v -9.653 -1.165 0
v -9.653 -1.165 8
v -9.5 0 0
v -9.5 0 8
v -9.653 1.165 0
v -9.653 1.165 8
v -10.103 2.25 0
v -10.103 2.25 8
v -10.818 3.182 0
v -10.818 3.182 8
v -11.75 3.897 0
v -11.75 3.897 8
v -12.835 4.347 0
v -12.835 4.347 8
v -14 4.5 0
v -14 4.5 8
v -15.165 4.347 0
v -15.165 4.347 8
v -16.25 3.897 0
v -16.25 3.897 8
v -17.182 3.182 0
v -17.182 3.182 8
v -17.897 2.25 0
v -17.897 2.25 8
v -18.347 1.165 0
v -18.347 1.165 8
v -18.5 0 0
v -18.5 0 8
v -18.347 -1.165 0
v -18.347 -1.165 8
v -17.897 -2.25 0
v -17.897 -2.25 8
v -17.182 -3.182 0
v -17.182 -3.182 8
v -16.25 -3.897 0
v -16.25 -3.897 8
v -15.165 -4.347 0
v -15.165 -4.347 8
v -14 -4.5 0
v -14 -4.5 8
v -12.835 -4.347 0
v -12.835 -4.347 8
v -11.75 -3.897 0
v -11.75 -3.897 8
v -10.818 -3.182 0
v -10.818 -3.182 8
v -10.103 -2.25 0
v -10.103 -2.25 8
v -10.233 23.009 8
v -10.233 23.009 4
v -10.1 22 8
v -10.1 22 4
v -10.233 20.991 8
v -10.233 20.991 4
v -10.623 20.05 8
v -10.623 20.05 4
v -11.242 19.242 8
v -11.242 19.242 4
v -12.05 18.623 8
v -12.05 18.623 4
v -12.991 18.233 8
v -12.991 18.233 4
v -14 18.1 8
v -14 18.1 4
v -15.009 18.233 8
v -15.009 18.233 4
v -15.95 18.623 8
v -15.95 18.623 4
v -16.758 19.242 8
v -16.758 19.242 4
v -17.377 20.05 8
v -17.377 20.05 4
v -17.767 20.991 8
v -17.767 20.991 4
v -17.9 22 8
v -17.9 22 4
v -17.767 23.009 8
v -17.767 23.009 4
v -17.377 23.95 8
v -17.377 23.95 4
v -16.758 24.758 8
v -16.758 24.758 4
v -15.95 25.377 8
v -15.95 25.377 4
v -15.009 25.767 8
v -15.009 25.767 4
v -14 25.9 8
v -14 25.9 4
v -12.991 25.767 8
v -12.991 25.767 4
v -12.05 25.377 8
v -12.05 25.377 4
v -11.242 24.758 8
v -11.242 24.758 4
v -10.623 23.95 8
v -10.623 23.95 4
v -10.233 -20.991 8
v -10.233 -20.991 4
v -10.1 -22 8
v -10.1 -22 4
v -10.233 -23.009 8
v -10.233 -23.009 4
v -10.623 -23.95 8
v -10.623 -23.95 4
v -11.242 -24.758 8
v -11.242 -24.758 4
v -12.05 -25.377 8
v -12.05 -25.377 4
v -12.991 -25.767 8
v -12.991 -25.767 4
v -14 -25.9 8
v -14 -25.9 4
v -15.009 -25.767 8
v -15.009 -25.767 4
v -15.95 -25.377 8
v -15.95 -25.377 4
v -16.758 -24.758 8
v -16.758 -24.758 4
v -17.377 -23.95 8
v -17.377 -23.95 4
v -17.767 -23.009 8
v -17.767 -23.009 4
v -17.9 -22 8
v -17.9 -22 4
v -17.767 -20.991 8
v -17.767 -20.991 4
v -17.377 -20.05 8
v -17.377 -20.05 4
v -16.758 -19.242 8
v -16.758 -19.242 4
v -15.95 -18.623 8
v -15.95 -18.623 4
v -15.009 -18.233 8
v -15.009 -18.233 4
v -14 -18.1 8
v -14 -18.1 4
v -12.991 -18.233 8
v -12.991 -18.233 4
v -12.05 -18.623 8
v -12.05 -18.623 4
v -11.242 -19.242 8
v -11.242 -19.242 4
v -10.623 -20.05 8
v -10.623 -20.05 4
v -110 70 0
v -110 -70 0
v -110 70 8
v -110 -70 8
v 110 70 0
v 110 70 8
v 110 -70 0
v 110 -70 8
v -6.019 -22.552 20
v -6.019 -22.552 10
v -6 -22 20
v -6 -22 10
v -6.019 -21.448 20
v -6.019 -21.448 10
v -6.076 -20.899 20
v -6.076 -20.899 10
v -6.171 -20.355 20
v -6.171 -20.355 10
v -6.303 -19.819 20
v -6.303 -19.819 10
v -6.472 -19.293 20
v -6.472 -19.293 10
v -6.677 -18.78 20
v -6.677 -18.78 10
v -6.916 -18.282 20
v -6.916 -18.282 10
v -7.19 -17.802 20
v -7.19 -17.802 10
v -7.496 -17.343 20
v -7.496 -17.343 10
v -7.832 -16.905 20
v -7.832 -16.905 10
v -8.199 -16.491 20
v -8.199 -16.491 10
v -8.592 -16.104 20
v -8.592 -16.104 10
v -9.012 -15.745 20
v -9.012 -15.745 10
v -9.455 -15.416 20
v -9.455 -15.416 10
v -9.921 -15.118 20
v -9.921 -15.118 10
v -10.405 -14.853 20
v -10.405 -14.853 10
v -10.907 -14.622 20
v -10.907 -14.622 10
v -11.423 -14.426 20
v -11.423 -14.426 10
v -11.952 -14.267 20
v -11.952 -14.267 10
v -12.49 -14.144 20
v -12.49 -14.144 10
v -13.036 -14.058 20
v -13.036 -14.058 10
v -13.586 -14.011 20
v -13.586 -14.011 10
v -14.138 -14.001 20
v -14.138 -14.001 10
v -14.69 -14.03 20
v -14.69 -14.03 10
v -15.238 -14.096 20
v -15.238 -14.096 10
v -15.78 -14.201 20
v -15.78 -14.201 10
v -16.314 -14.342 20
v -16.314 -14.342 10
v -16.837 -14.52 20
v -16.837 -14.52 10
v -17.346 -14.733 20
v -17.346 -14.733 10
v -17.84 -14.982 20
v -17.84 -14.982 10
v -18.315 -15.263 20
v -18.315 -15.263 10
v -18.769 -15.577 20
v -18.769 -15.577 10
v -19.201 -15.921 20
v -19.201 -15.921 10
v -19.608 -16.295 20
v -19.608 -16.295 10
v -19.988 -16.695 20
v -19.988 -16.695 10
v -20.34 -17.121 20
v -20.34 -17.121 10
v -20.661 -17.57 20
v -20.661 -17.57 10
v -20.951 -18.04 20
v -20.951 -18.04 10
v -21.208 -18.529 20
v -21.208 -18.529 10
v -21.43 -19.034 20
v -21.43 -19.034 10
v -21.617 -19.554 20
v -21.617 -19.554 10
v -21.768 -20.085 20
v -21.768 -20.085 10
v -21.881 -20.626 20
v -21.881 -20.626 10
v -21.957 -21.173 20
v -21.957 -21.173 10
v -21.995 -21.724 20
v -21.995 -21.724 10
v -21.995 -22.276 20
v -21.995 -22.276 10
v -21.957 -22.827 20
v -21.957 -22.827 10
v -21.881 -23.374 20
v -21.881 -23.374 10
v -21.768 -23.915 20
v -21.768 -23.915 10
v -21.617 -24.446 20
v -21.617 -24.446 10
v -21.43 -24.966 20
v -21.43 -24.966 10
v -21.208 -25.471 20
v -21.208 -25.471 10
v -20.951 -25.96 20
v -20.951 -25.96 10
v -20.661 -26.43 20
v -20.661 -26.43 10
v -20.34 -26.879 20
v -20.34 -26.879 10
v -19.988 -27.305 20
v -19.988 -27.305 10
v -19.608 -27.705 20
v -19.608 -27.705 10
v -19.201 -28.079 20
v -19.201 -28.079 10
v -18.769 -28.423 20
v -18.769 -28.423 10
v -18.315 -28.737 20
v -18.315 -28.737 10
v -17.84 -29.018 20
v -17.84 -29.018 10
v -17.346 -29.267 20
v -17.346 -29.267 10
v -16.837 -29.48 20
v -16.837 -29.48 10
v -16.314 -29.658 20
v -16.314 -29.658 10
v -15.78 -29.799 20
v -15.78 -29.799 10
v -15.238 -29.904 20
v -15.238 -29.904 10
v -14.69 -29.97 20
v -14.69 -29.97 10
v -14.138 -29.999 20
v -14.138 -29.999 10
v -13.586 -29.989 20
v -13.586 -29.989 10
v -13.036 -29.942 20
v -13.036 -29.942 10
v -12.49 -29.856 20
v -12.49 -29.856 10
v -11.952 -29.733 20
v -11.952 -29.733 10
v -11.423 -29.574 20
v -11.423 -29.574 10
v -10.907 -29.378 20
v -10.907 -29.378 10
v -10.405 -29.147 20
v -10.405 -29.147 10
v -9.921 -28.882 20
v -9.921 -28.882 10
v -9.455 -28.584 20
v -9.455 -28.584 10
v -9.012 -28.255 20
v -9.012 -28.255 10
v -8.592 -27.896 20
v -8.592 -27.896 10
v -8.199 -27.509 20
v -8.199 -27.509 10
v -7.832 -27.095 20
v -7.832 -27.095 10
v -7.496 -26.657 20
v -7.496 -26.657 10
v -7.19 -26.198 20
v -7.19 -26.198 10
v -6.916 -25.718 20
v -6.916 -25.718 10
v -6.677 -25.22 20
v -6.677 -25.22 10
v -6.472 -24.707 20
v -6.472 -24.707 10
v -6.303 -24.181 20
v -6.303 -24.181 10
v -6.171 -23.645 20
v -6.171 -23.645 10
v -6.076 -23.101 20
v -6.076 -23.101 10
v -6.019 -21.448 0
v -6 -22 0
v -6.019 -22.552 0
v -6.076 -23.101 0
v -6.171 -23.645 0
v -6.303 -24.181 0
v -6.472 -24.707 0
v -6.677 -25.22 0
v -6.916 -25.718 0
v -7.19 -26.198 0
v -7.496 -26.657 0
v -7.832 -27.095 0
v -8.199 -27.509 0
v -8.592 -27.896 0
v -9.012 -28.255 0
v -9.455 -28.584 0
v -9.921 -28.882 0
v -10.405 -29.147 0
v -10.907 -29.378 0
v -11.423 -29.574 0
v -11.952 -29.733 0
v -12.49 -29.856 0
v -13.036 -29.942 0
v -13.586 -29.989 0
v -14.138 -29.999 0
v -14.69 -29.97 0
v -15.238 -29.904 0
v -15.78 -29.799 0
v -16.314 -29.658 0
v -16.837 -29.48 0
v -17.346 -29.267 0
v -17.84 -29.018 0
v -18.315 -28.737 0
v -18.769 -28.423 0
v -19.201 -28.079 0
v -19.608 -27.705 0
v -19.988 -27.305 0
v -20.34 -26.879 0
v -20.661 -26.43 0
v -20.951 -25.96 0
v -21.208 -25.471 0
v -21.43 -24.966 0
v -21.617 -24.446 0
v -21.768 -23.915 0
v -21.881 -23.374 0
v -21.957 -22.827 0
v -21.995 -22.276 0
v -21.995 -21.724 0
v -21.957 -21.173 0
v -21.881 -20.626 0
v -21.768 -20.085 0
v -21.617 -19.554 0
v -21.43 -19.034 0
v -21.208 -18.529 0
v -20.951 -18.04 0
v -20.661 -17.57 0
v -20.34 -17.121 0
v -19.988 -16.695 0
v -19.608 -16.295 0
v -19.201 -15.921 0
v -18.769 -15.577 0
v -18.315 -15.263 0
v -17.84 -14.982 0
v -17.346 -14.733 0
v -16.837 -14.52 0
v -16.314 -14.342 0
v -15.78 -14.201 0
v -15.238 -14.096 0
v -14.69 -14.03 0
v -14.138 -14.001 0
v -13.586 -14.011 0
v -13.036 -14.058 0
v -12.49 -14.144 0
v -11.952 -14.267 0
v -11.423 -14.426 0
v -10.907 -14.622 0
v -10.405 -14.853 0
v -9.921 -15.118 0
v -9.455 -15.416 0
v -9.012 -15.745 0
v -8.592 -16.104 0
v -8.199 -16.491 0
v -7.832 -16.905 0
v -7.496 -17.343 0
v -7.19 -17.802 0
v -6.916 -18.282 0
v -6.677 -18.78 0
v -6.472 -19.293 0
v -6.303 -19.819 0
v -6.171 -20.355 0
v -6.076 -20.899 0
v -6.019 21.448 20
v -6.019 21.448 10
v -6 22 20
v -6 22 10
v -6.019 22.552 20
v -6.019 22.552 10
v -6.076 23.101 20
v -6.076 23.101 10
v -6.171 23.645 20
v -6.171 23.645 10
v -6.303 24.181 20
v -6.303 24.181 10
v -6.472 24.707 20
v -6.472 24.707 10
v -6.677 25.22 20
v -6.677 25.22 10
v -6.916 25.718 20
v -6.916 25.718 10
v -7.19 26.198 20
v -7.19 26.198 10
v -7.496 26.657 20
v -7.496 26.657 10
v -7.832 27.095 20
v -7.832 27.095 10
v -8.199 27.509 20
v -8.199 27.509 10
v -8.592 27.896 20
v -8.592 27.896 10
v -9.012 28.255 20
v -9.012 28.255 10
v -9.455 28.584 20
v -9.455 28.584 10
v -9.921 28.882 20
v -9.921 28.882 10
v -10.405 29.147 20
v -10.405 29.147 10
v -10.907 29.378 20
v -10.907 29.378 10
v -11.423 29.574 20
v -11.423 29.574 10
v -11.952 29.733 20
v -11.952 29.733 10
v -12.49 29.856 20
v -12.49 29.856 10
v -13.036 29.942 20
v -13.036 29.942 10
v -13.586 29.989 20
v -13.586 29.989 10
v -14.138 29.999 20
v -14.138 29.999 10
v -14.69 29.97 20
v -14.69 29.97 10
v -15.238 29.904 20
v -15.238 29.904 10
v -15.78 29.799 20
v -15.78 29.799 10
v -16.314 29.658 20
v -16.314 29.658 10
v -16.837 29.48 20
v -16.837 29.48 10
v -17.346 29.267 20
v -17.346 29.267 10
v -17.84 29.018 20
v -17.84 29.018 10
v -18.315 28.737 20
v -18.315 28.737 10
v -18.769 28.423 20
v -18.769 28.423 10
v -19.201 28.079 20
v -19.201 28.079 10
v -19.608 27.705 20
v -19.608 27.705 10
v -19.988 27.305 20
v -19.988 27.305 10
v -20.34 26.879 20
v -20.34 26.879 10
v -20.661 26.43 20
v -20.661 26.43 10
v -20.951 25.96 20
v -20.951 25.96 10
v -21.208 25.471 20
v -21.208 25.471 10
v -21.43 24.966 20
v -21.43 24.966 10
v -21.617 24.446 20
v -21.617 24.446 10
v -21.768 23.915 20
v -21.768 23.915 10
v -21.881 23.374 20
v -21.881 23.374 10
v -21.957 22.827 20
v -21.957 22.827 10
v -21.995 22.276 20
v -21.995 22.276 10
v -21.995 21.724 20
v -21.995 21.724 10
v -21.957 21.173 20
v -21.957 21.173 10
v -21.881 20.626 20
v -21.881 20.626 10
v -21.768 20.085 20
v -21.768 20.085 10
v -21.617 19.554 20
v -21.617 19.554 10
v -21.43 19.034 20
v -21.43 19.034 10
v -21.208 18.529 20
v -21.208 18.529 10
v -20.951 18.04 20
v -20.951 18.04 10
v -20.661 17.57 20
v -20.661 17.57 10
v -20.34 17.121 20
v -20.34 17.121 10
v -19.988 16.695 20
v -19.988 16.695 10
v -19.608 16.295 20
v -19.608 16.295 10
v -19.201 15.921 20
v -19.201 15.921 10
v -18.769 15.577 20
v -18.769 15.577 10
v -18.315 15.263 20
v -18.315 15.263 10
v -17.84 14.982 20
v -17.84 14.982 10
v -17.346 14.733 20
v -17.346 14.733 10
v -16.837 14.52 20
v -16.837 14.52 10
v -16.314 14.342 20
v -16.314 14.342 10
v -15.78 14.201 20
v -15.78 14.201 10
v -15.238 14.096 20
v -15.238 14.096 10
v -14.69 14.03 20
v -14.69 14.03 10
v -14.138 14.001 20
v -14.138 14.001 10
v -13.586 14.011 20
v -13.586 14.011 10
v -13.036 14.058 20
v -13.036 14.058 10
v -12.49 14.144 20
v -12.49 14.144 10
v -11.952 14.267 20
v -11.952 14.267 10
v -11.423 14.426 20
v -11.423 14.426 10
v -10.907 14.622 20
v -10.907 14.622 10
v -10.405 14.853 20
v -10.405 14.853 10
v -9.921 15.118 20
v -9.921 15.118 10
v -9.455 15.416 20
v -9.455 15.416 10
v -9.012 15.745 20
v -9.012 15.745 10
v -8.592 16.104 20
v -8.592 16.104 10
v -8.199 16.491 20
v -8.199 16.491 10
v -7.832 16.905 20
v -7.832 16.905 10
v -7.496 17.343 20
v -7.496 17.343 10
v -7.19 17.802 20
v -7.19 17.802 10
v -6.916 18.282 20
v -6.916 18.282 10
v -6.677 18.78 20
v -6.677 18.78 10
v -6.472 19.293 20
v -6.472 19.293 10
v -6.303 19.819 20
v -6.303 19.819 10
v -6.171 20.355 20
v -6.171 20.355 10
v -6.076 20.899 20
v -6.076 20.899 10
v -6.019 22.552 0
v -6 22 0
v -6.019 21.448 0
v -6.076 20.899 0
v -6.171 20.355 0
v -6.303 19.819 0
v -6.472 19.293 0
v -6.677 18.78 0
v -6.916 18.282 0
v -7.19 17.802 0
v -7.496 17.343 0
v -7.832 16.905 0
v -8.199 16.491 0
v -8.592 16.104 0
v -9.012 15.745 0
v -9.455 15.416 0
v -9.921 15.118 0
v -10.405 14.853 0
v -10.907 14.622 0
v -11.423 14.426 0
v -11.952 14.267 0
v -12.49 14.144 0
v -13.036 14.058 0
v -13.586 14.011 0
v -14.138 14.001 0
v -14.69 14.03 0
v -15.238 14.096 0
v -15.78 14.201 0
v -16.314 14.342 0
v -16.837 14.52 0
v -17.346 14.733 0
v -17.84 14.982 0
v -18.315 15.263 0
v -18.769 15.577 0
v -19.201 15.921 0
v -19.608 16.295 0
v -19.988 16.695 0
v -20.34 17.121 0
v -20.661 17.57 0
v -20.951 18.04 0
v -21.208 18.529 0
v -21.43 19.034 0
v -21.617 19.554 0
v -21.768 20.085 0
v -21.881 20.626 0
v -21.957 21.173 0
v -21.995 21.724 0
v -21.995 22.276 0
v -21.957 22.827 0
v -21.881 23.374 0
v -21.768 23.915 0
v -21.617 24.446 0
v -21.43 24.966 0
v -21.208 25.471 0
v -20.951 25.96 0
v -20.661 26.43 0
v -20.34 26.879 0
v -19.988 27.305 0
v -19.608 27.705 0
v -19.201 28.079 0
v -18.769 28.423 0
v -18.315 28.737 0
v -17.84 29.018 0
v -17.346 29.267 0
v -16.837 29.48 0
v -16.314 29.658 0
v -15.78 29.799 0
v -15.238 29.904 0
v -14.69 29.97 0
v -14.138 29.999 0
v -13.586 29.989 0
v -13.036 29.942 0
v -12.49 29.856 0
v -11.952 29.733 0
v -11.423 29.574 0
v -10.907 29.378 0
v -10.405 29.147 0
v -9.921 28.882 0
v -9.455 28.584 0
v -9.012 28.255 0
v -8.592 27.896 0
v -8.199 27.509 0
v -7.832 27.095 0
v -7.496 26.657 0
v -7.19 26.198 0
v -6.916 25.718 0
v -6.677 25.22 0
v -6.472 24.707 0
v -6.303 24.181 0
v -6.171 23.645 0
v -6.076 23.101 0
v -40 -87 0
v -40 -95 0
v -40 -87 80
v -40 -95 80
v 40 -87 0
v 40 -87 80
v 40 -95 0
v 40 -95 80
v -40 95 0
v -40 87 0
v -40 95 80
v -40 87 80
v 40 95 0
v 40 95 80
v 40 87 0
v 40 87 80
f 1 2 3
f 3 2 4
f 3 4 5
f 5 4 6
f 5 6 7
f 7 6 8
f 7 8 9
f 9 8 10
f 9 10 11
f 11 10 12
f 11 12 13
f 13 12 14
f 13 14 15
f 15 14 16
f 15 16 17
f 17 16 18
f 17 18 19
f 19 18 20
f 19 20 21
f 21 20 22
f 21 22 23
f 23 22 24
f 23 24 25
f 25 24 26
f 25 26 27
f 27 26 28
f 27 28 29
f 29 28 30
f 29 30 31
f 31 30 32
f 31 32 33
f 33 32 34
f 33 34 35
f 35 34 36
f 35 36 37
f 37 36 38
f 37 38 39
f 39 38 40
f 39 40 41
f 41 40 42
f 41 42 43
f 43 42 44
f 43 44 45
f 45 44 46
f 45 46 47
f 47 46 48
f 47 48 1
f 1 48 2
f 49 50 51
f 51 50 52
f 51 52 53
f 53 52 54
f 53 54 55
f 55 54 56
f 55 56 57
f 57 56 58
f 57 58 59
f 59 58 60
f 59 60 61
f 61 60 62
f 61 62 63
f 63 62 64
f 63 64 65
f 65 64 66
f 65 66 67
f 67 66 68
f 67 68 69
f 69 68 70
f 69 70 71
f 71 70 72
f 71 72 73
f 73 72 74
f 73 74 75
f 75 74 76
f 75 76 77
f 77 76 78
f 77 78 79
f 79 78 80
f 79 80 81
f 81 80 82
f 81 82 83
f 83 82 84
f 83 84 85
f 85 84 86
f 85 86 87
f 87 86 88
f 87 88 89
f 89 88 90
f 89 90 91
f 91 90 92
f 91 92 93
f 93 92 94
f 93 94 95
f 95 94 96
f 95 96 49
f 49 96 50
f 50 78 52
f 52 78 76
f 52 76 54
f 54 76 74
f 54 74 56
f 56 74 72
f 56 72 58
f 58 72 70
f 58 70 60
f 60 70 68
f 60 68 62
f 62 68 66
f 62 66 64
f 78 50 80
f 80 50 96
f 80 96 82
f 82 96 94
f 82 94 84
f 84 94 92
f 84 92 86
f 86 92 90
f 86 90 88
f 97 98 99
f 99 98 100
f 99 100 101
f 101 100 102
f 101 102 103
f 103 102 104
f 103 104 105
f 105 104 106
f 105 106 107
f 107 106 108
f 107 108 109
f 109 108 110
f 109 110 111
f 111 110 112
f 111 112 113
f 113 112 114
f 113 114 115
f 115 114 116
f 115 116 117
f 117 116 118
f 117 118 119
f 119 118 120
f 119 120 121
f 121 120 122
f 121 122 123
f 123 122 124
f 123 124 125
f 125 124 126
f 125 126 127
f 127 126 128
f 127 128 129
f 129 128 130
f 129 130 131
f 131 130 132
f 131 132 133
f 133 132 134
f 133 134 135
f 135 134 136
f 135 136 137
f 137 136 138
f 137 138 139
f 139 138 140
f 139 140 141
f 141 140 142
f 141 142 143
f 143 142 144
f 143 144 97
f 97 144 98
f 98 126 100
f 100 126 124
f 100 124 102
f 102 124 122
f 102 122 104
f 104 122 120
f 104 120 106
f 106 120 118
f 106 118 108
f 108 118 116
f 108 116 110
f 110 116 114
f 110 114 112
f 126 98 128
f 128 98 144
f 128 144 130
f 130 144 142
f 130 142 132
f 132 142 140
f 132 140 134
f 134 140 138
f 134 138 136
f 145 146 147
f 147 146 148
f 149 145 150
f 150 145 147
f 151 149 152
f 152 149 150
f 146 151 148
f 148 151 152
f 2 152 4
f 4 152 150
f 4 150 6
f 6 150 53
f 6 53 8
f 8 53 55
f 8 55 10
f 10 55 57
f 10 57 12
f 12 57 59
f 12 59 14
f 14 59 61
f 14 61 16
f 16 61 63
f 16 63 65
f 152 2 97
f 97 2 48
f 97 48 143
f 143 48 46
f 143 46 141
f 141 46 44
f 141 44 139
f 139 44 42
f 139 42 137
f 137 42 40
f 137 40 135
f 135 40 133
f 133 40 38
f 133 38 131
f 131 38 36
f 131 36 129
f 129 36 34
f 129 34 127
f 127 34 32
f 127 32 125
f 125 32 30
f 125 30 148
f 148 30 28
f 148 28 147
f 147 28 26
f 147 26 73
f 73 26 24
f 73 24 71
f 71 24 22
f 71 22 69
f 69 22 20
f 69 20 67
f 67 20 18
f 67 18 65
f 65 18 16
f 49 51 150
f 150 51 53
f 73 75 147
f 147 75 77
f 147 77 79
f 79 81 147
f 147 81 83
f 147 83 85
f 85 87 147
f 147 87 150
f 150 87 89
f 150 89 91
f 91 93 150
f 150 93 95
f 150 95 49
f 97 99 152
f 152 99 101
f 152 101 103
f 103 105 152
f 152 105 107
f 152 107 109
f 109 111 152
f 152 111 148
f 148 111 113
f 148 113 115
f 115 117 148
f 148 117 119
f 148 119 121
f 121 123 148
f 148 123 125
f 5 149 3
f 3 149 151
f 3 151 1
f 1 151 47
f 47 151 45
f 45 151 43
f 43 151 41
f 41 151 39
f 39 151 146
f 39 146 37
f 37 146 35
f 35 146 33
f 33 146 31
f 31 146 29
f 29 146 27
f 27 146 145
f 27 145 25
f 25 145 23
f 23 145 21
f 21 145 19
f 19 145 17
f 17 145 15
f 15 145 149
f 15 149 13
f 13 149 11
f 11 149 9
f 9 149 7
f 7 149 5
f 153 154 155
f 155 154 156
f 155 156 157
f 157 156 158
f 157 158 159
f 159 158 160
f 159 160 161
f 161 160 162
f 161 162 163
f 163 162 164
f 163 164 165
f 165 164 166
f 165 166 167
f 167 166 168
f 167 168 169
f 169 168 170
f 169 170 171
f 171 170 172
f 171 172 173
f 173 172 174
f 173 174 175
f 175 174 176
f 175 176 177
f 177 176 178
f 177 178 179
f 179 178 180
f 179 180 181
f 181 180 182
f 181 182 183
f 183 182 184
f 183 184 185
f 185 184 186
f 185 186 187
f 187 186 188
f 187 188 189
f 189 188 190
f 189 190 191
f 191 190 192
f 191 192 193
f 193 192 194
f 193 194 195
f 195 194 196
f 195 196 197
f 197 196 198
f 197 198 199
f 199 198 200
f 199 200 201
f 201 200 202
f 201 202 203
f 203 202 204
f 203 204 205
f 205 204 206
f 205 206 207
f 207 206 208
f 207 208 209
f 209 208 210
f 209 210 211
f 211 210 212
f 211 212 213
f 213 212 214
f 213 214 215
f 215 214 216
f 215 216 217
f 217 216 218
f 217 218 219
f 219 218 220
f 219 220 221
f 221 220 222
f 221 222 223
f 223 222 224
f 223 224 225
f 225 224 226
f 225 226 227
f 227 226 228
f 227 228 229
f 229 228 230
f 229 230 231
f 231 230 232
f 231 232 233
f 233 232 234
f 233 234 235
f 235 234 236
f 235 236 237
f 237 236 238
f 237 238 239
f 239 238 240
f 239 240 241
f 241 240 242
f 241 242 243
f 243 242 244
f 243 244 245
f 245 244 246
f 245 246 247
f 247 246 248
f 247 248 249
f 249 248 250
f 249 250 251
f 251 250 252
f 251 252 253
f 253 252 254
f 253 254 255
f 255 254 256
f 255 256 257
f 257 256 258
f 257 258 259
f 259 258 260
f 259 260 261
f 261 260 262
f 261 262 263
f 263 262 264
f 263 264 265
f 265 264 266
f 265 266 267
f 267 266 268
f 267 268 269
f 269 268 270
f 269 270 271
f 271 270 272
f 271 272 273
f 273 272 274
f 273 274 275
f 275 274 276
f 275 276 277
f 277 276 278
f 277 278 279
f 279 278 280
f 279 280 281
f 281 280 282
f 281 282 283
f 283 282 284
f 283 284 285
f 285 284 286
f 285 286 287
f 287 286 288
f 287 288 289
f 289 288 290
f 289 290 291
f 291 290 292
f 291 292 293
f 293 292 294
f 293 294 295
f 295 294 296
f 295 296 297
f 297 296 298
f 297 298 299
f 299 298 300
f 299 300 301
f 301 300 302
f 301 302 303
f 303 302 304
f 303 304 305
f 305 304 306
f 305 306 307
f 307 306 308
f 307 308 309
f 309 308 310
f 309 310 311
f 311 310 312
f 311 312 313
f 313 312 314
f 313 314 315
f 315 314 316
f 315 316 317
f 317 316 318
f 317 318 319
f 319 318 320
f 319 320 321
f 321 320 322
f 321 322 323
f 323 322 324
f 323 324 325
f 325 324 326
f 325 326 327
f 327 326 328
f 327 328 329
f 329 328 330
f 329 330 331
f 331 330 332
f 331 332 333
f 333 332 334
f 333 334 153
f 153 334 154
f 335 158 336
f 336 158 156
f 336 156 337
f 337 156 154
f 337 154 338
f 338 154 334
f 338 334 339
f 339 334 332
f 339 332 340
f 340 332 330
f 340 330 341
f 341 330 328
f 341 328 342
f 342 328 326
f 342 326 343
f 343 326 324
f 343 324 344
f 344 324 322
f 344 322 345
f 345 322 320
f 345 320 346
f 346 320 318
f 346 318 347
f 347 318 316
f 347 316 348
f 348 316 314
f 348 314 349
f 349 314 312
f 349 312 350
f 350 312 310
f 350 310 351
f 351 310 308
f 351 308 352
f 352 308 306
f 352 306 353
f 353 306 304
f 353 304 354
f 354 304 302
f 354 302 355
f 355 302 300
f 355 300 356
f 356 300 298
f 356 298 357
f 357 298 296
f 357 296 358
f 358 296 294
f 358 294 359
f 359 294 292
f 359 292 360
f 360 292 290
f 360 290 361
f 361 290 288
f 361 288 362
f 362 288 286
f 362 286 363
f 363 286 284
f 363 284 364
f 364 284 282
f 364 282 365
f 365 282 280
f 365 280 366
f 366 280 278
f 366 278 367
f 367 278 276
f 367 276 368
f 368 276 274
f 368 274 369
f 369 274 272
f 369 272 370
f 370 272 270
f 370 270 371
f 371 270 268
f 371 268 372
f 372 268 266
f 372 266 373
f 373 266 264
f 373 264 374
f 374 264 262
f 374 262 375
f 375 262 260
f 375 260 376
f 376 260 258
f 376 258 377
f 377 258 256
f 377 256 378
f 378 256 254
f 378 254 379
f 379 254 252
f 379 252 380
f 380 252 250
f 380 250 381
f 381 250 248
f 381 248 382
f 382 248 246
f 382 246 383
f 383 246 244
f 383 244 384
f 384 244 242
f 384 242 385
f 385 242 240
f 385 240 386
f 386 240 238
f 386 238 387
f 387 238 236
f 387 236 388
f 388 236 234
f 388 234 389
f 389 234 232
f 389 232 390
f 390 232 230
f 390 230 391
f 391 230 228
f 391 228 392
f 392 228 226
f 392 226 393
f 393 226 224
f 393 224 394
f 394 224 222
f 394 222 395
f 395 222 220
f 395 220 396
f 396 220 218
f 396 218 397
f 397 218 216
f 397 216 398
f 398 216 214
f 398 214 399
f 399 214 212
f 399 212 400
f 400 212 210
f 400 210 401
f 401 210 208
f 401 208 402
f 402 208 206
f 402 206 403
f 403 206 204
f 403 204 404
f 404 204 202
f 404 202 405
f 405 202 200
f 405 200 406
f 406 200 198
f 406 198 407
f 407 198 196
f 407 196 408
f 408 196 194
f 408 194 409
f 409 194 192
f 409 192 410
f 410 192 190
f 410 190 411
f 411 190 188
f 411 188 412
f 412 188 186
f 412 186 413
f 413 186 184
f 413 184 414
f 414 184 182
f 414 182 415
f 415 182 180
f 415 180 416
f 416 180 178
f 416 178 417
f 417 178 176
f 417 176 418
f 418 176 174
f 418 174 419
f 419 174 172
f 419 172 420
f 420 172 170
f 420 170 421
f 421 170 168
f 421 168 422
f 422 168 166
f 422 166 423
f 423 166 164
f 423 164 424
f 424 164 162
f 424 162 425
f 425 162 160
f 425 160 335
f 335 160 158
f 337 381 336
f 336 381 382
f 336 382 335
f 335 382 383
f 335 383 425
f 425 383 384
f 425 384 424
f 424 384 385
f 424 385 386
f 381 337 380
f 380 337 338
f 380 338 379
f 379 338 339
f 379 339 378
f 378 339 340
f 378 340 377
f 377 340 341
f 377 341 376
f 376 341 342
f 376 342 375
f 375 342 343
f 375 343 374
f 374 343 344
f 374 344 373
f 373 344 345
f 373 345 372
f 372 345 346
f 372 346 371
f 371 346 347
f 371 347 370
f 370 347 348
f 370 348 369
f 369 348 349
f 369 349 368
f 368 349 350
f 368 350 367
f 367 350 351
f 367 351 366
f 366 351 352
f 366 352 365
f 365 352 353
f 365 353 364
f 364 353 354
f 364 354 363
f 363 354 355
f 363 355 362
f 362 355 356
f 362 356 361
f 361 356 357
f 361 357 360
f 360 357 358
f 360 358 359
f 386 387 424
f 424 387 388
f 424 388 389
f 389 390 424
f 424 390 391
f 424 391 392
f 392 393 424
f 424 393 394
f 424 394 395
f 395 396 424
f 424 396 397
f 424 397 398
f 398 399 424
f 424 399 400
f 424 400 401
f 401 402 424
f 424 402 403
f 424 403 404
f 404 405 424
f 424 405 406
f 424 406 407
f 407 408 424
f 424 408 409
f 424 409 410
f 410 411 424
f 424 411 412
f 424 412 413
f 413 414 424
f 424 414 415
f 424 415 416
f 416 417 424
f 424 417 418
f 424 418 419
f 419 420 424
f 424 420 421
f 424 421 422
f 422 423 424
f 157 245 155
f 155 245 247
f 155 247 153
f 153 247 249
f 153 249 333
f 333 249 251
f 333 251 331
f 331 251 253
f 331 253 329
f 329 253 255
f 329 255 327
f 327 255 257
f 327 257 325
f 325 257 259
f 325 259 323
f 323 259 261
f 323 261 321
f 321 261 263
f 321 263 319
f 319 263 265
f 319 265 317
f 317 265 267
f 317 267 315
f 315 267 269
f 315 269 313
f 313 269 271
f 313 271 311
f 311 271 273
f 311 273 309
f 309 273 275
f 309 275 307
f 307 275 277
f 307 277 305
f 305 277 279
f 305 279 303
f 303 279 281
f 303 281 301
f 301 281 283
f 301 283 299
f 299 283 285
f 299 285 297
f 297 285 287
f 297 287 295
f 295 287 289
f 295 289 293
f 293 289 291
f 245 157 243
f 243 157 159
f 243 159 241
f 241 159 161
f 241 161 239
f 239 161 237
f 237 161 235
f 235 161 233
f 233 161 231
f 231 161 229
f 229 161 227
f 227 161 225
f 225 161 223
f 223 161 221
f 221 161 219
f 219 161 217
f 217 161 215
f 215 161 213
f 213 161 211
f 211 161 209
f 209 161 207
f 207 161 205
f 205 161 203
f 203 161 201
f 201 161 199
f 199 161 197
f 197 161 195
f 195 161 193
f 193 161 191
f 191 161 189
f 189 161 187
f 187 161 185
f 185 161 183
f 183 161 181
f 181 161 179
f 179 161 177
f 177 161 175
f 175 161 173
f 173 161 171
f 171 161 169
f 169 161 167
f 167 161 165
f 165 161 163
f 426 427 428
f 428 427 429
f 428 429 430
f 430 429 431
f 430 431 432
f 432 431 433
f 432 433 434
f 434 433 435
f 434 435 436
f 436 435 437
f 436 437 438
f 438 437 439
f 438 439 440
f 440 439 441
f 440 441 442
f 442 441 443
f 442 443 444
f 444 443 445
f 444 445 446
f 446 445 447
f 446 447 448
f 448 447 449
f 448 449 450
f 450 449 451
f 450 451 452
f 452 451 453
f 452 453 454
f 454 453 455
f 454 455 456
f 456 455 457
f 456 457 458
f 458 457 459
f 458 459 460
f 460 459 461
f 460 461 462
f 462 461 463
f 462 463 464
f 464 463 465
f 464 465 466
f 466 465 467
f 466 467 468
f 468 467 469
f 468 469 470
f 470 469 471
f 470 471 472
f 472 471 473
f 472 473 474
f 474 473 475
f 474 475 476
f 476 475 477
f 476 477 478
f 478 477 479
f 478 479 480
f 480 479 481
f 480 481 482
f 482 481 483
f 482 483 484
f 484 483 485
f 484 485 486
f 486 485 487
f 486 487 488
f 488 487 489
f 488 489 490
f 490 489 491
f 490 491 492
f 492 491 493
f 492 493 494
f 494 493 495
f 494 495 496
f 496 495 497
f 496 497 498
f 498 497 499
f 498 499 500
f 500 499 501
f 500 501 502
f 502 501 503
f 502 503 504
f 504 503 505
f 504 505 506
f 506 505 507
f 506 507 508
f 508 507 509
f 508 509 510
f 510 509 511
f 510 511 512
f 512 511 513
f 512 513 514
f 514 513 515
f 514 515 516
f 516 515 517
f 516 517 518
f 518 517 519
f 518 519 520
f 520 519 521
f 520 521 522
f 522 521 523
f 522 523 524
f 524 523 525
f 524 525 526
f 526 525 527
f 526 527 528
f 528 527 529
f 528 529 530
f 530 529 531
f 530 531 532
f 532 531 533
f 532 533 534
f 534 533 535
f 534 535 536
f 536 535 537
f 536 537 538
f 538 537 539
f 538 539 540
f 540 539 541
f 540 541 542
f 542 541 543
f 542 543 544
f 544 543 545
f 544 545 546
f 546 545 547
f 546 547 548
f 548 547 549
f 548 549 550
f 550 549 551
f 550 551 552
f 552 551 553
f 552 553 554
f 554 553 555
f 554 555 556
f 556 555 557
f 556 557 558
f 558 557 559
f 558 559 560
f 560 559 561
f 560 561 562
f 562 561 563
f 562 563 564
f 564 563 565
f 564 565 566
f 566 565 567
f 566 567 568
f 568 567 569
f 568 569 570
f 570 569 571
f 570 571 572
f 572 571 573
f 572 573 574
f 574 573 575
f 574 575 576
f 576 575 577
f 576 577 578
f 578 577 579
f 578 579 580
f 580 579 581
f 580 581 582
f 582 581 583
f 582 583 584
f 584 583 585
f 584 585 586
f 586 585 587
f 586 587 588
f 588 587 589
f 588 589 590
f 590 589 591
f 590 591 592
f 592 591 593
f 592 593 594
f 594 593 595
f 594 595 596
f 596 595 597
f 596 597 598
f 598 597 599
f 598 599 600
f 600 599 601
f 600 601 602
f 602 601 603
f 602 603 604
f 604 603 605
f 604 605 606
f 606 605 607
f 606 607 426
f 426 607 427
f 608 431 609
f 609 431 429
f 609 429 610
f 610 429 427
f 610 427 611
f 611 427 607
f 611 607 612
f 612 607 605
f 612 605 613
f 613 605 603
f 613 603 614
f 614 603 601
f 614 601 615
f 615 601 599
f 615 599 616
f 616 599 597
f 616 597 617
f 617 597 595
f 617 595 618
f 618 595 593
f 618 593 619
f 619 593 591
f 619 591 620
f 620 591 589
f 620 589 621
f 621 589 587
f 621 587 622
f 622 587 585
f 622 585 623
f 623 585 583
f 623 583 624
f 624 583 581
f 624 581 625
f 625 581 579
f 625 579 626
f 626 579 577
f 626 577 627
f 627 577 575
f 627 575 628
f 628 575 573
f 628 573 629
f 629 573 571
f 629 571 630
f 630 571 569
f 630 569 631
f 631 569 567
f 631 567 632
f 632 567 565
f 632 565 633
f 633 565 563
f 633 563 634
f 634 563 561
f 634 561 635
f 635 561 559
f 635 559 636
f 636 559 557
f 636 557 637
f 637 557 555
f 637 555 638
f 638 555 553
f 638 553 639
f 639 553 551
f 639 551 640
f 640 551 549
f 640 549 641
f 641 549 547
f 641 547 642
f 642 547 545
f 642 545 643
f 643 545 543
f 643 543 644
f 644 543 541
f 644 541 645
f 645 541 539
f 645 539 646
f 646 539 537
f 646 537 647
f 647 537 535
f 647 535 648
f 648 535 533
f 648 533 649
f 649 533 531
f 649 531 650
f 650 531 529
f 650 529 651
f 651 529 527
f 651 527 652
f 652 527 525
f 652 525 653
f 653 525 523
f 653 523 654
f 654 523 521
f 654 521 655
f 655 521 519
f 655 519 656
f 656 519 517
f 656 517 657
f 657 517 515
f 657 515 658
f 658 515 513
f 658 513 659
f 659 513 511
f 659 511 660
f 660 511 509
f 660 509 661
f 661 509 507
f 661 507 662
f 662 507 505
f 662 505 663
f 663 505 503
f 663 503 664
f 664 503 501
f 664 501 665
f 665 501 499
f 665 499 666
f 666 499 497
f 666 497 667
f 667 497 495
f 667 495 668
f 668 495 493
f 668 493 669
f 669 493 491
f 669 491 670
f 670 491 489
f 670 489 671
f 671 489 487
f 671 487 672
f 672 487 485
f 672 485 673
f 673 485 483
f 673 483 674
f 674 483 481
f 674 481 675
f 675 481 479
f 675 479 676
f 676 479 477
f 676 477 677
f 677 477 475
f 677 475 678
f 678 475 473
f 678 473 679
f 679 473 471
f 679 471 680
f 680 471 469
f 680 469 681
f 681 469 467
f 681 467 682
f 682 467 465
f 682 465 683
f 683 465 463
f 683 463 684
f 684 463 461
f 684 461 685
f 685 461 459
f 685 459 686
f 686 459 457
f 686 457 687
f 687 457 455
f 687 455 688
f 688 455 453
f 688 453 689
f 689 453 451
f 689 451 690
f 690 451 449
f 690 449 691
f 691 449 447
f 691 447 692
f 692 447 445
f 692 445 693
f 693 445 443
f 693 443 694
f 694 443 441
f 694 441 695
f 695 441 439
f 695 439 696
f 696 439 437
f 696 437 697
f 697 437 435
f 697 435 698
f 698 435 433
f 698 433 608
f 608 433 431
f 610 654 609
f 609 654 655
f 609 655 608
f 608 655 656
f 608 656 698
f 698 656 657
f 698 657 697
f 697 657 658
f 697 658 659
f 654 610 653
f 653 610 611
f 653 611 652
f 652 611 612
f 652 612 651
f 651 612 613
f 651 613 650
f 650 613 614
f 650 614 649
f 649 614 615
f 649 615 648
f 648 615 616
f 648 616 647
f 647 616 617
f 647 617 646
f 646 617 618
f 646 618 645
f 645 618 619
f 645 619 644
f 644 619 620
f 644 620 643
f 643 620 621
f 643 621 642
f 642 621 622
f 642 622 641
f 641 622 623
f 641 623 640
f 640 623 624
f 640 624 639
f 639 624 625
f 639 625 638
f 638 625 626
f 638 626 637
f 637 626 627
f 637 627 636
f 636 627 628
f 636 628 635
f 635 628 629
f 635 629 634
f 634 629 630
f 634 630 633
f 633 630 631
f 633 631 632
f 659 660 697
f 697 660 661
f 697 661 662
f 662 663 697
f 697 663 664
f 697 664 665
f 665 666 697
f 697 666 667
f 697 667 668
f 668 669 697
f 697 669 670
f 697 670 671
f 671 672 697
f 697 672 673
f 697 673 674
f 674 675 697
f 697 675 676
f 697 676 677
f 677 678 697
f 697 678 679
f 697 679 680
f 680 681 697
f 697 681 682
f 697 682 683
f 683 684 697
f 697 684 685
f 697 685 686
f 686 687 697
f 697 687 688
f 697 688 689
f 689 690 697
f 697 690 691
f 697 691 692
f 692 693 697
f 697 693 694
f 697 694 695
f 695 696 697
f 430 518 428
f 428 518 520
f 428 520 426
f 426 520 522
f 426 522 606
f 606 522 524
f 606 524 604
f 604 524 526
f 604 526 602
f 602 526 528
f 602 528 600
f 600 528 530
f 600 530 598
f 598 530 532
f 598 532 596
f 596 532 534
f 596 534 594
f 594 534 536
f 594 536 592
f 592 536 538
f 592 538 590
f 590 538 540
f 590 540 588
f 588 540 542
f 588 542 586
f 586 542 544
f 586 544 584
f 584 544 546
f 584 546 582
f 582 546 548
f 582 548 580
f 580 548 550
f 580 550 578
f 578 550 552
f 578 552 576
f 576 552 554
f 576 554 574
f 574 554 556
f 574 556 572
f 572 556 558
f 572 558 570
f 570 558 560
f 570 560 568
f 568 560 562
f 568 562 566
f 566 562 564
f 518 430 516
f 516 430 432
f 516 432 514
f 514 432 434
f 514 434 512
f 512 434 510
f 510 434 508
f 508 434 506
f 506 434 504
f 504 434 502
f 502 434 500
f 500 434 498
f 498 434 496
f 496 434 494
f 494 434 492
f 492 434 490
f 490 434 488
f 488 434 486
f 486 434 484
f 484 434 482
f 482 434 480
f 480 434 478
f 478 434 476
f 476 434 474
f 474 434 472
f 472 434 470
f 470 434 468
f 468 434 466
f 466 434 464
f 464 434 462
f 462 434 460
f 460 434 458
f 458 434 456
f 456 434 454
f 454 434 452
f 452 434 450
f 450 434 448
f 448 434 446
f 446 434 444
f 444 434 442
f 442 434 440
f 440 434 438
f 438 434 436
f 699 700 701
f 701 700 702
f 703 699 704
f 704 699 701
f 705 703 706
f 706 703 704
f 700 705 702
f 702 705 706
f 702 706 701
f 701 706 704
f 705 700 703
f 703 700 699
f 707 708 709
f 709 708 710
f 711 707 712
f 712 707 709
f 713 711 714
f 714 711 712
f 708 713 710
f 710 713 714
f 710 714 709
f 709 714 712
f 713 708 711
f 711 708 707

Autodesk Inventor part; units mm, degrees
sketch "Skizze1" plane through (0, 0, 0) normal (0, 0, 1) x (1, 0, 0)
  line L0 (-110, -70) -> (110, -70)
  line L1 (110, -70) -> (110, 70)
  line L2 (110, 70) -> (-110, 70)
  line L3 (-110, 70) -> (-110, -70)
extrude "Extrusion1" add sketch "Skizze1" along normal blind 8
sketch "Skizze2" plane through (0, 0, 0) normal (0, 0, 1) x (1, 0, 0)
  circle A0 centre (-14, -22) radius 8
extrude "Extrusion2" add sketch "Skizze2" along normal blind 20 separate body
sketch "Skizze3" plane through (0, 0, 0) normal (0, 0, 1) x (1, 0, 0)
  circle A0 centre (-14, 22) radius 8
extrude "Extrusion3" add sketch "Skizze3" along normal blind 20 separate body
sketch "Skizze4" plane through (0, 0, 0) normal (0, 0, 1) x (1, 0, 0)
  line L0 (-40, -95) -> (40, -95)
  line L1 (40, -95) -> (40, -87)
  line L2 (40, -87) -> (-40, -87)
  line L3 (-40, -87) -> (-40, -95)
extrude "Extrusion4" add sketch "Skizze4" along normal blind 80 separate body
sketch "Skizze5" plane through (0, 0, 0) normal (0, 0, 1) x (1, 0, 0)
  line L0 (-40, 87) -> (40, 87)
  line L1 (40, 87) -> (40, 95)
  line L2 (40, 95) -> (-40, 95)
  line L3 (-40, 95) -> (-40, 87)
extrude "Extrusion5" add sketch "Skizze5" along normal blind 80 separate body
ref_plane "Arbeitsebene1" through (0, 0, 20) normal (0, 0, 1) x (1, 0, 0)
ref_plane "Arbeitsebene2" through (0, 0, 8) normal (0, 0, 1) x (1, 0, 0)
sketch "Skizze6" plane through (0, 0, 20) normal (0, 0, 1) x (1, 0, 0)
  circle A0 centre (-14, -22) radius 3.9
extrude "Extrusion6" cut sketch "Skizze6" against normal blind 16 bodies 1
sketch "Skizze7" plane through (0, 0, 20) normal (0, 0, 1) x (1, 0, 0)
  circle A0 centre (-14, 22) radius 3.9
extrude "Extrusion7" cut sketch "Skizze7" against normal blind 16 bodies 1
sketch "Skizze8" plane through (0, 0, 8) normal (0, 0, 1) x (1, 0, 0)
  circle A0 centre (-14, 0) radius 4.5
extrude "Extrusion8" cut sketch "Skizze8" against normal blind 9 bodies 1
ref_plane "Arbeitsebene3" through (0, -91, 0) normal (0, 1, 0) x (-1, 0, 0)
sketch "Skizze9" plane through (0, -91, 0) normal (0, 1, 0) x (-1, 0, 0)
  circle A0 centre (0, 60) radius 7
extrude "Extrusion9" cut sketch "Skizze9" along normal mid plane 12 bodies 1
sketch "Skizze10" plane through (0, -91, 0) normal (0, 1, 0) x (-1, 0, 0)
  circle A0 centre (16, 60) radius 1.5
extrude "Extrusion10" cut sketch "Skizze10" along normal mid plane 12 bodies 1
ref_plane "Arbeitsebene4" through (0, 91, 0) normal (0, 1, 0) x (-1, 0, 0)
sketch "Skizze11" plane through (0, 91, 0) normal (0, 1, 0) x (-1, 0, 0)
  circle A0 centre (0, 60) radius 4.15
extrude "Extrusion11" cut sketch "Skizze11" along normal mid plane 12 bodies 1
properties part number "Rahmen_v4"
